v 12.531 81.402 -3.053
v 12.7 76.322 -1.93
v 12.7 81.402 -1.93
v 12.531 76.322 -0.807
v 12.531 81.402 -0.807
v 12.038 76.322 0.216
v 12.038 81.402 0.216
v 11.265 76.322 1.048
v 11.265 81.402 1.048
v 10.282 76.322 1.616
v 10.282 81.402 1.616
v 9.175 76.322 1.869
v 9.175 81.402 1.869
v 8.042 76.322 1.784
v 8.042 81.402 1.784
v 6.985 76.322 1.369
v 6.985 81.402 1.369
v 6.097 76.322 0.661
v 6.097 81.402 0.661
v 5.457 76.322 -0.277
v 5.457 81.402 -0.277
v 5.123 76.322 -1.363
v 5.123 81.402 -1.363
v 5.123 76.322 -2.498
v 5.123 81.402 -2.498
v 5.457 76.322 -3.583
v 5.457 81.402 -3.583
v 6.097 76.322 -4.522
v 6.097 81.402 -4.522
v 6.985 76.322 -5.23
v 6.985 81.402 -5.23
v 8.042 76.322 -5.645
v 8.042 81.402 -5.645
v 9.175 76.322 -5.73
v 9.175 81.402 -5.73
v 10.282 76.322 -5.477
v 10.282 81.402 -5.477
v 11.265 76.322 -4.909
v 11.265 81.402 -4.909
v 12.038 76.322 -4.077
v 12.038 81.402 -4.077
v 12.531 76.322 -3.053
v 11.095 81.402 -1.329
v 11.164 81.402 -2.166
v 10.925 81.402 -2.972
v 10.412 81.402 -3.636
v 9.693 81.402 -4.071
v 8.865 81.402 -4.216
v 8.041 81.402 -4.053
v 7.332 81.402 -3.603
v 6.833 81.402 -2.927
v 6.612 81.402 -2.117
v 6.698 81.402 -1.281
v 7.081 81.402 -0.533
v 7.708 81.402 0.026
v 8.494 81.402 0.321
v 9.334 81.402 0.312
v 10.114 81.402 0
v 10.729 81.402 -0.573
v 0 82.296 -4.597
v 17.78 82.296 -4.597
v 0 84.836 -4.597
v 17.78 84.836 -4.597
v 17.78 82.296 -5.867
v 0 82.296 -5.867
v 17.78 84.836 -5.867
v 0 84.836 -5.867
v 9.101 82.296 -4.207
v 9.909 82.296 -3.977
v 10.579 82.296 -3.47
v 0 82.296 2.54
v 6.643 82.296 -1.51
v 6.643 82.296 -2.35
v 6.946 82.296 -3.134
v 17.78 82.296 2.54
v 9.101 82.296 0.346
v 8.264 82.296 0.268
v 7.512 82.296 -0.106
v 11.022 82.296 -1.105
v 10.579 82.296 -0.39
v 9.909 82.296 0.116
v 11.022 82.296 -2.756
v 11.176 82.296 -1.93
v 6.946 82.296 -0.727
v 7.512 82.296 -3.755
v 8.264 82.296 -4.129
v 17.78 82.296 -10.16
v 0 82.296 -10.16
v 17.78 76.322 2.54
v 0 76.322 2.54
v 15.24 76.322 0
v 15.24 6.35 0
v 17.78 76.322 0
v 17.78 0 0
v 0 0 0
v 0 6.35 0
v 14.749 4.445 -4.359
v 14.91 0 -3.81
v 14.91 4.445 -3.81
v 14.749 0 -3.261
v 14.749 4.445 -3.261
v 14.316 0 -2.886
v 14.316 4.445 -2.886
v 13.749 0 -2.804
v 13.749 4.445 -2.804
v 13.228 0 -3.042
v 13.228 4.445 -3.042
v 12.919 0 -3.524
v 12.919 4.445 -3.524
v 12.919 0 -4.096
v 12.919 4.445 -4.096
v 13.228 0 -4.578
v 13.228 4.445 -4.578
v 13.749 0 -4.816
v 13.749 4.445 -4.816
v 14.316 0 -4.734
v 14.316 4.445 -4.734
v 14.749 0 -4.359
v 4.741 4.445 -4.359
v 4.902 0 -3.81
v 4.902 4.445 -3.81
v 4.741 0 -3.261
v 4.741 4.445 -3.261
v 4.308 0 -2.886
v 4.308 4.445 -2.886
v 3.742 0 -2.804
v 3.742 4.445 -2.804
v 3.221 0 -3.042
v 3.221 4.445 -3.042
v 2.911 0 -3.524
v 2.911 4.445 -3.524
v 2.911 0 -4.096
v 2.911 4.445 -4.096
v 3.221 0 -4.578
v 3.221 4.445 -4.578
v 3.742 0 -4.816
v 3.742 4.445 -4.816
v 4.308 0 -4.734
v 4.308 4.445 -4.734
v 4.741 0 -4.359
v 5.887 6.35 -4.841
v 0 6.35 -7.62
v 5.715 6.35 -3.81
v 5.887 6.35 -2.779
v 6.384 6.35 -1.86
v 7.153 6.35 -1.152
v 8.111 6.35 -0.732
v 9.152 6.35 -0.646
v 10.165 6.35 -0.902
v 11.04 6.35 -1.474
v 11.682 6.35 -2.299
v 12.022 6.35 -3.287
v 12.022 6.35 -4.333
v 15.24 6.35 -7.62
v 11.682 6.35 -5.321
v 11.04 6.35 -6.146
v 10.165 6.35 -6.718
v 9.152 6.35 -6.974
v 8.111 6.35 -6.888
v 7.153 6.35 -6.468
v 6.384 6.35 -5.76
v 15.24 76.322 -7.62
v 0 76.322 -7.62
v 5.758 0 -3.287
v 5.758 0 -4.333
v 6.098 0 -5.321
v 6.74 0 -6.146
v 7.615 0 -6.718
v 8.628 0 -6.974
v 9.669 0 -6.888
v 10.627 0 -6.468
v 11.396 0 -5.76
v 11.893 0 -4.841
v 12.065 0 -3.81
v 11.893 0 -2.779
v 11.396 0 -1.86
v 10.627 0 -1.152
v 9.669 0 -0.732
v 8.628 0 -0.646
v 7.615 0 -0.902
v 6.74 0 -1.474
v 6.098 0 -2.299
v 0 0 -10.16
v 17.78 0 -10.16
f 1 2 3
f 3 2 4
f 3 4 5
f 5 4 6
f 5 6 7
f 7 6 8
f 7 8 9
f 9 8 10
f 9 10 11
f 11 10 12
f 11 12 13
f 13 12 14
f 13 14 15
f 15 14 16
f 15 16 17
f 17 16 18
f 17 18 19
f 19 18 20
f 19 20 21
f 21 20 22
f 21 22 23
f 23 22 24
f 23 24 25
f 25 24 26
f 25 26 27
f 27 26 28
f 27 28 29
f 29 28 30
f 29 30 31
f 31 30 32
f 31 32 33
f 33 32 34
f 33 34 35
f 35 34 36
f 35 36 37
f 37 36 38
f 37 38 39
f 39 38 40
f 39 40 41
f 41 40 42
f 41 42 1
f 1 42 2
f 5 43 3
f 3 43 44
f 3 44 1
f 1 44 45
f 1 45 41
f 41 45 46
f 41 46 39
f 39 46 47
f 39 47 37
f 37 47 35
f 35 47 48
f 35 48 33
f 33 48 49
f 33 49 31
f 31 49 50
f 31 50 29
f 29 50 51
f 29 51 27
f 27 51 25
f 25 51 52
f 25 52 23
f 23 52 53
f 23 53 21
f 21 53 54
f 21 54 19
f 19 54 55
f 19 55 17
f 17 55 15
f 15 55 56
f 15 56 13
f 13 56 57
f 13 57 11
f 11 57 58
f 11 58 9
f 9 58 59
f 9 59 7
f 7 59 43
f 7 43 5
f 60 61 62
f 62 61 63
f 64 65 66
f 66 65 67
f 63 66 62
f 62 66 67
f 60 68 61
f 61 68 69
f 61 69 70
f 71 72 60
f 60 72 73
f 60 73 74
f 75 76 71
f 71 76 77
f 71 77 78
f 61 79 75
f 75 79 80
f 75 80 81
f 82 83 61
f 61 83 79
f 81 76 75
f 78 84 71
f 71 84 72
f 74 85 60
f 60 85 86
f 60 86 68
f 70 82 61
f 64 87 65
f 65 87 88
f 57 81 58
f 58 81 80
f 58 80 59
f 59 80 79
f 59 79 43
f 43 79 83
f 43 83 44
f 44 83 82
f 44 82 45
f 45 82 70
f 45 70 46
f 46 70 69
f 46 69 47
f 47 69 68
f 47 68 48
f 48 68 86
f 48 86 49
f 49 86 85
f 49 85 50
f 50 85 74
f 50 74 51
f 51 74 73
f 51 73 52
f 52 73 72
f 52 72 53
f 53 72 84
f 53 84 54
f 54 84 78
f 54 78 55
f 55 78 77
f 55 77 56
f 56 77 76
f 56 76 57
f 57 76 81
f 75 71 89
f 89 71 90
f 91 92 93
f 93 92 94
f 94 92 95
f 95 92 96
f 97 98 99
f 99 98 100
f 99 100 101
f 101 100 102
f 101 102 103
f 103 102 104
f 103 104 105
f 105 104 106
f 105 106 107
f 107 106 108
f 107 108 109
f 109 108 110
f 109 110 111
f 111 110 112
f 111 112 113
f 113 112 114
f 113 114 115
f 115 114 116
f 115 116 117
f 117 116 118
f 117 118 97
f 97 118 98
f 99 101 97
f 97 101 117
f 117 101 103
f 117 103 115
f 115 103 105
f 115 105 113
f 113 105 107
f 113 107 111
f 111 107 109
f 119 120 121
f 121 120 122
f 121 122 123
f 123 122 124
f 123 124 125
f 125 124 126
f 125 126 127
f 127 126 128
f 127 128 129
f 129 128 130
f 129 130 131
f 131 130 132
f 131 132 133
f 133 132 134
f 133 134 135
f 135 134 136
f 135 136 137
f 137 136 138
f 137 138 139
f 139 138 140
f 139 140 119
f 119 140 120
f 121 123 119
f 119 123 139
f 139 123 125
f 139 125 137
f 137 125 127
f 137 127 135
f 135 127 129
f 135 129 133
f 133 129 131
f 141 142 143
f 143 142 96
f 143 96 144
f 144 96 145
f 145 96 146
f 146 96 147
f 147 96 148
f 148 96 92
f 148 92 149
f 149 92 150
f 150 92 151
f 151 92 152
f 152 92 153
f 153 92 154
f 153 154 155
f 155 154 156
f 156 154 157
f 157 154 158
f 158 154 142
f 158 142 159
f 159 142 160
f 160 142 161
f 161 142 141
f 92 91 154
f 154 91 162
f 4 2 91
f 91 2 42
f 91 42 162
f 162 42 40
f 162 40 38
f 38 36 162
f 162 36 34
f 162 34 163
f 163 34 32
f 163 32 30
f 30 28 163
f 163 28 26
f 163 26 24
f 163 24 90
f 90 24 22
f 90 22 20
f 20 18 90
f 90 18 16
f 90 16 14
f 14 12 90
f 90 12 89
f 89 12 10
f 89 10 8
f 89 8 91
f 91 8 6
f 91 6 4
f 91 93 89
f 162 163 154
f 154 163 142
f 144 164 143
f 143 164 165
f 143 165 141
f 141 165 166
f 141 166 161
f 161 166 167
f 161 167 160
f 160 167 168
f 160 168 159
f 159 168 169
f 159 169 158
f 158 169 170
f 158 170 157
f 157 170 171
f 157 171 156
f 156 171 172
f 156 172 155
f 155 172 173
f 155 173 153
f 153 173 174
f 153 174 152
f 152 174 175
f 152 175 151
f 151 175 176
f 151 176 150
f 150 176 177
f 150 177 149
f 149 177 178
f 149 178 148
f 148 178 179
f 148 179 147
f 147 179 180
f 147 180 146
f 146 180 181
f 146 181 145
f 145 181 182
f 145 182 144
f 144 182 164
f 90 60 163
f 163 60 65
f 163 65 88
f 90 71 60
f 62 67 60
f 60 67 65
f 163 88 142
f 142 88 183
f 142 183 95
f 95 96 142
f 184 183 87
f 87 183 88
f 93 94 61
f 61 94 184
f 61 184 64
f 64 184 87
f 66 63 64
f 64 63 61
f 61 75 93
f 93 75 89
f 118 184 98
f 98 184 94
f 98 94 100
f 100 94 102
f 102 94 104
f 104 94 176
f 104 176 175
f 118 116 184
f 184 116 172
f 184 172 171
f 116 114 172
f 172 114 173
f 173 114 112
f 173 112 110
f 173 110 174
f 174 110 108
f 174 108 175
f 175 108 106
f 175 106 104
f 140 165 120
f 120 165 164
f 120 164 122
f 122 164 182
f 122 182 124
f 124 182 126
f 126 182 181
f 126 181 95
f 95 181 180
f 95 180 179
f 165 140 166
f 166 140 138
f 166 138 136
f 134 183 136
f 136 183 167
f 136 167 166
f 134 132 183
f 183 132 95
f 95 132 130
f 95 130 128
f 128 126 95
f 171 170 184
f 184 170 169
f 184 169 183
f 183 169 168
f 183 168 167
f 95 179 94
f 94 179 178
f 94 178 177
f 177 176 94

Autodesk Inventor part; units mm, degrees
ref_plane "YZ Plane" through (0, 0, 0) normal (1, 0, 0) x (0, 1, 0)
ref_plane "XZ Plane" through (0, 0, 0) normal (0, 1, 0) x (-1, 0, 0)
ref_plane "XY Plane" through (0, 0, 0) normal (0, 0, 1) x (1, 0, 0)
sketch "Sketch1" plane through (0, 0, 0) normal (0, 1, 0) x (-1, 0, 0)
  line L0 (0, 0) -> (-17.78, 0)
  line L1 (-17.78, 0) -> (-17.78, -10.16)
  line L2 (-17.78, -10.16) -> (0, -10.16)
  line L3 (0, -10.16) -> (0, 0)
  dimension "d0" = 17.78
  dimension "d1" = 10.16
extrude "Extrusion1" add sketch "Sketch1" along normal blind 82.296
sketch "Sketch2" plane through (0, 0, 0) normal (0, -1, 0) x (1, 0, 0)
  line L0 (0, 0) -> (0, -5.08)
  line L1 (0, -10.16) -> (0, 0) projected
  line L2 (0, 0) -> (17.78, 0) projected
  line L3 (8.89, 0) -> (8.89, -3.81)
  circle A0 centre (8.89, -3.81) radius 3.175
  line L4 (8.89, -3.81) -> (11.8809, -3.81)
  line L5 (8.89, -3.81) -> (3.8862, -3.81)
  line L6 (8.89, -3.81) -> (13.8938, -3.81)
  circle A1 centre (13.8938, -3.81) radius 1.016
  circle A2 centre (3.8862, -3.81) radius 1.016
  dimension "d5" = 6.35
  dimension "d6" = 5.0038
  dimension "d7" = 5.0038
  dimension "d8" = 2.032
  dimension "d9" = 2.032
  dimension "d20" = 3.81
extrude "Extrusion2" cut sketch "Sketch2" against normal blind 50.8 contours A0 L6 L4 L3 | L3 L5 A0 | L4 L6 A0 L5
sketch "Sketch3" plane through (0, 0, 0) normal (0, 0, 1) x (1, 0, 0)
  line L0 (0, 0) -> (0, 82.296) projected
  line L1 (0, 0) -> (0, 6.35)
  line L2 (0, 6.35) -> (15.24, 6.35)
  line L3 (15.24, 6.35) -> (-24.1406, 6.35)
  line L4 (-24.1406, 6.35) -> (-24.1406, 76.3224)
  line L5 (-24.1406, 76.3224) -> (15.24, 76.3224)
  line L6 (15.24, 76.3224) -> (15.24, 6.35)
  point P0 (0, 76.3224)
  dimension "d12" = 6.35
  dimension "d13" = 15.24
extrude "Extrusion3" cut sketch "Sketch3" against normal blind 7.62 contours L0 L5 L6 L2
extrude "Extrusion4" cut sketch "Sketch2" against normal blind 4.445 contours A1 | A2
thread "Thread1" size "8-32 UNC" class "2B" standard "ANSI Unified Screw Threads" length 9.896
sketch "Sketch4" plane through (0, 82.296, 0) normal (0, 1, 0) x (1, 0, 0)
  circle A0 centre (8.89, 3.81) radius 3.175 projected
  line L0 (8.89, 0) -> (8.89, 3.81) projected
  circle A1 centre (8.89, 3.81) radius 2.286
  line L1 (8.89, 3.81) -> (8.89, 1.9304)
  circle A2 centre (8.89, 1.9304) radius 2.286
  point P0 (0, 0)
  dimension "d21" = 4.572
  dimension "d28" = 1.8796
  dimension "d29" = 4.572
sketch "Sketch5" plane through (0, 82.296, 0) normal (0, 1, 0) x (1, 0, 0)
  circle A0 centre (8.89, 3.81) radius 2.286 projected
  line L0 (8.89, 3.81) -> (8.89, 6.477)
  line L1 (8.89, 6.477) -> (0, 6.477)
  line L2 (0, 10.16) -> (0, 0) projected
  line L3 (8.89, 6.477) -> (17.78, 6.477)
  line L4 (17.78, 0) -> (17.78, 10.16) projected
  line L5 (17.78, 6.477) -> (17.78, 7.747)
  line L6 (17.78, 7.747) -> (0, 7.747)
  line L7 (0, 6.477) -> (0, 7.747)
  line L8 (8.89, 3.81) -> (8.89, 1.9304)
  line L9 (8.89, 6.477) -> (8.89, 4.5974)
  line L10 (8.89, 4.5974) -> (0, 4.5974)
  line L11 (8.89, 4.5974) -> (17.78, 4.5974)
  line L12 (17.78, 5.8674) -> (0, 5.8674)
  line L13 (17.78, 4.5974) -> (17.78, 5.8674)
  line L14 (0, 4.5974) -> (0, 5.8674)
  point P0 (0, 5.8674)
  point P1 (0, 4.5974)
  dimension "d24" = 2.667
  dimension "d25" = 1.27
  dimension "d35" = 1.8796
  dimension "d36" = 1.8796
  dimension "d37" = 1.27
sketch "Sketch6" plane through (0, 82.296, 0) normal (0, 1, 0) x (1, 0, 0)
  line L0 (0, 0) -> (17.78, 0) projected
  line L1 (0, 0) -> (17.78, 0)
  line L2 (17.78, 0) -> (17.78, -2.54)
  line L3 (17.78, -2.54) -> (0, -2.54)
  line L4 (0, -2.54) -> (0, 0)
  dimension "d30" = 2.54
extrude "Extrusion7" add sketch "Sketch6" against normal blind 5.9736
extrude "Extrusion8" cut sketch "Sketch4" against normal blind 25.4 contours A2 A1 L0 A0 | A0 A2 | A0 L0 A1 A2 | A2 A1 picked at (9.0633, 2.4414)
extrude "Extrusion9" add sketch "Sketch5" along normal blind 2.54 contours L11 L0 L12 A0 | A0 L12 L4 L11 | L10 L2 L12 A0 | A0 L12 L0 L10
sketch "Sketch8" plane through (0, 76.3224, -7.62) normal (0, -1, 0) x (1, 0, 0)
  circle A0 centre (8.89, 5.6896) radius 2.286 projected
  circle A1 centre (8.89, 5.6896) radius 2.286 projected
  circle A2 centre (8.89, 5.6896) radius 3.81
  point P0 (0, 7.62)
  point P1 (10.1145, 7.62)
  point P2 (7.6655, 7.62)
  dimension "d41" = 7.62
extrude "Extrusion10" cut sketch "Sketch8" against normal blind 5.08
properties part number "IDA12toPolarisAdapter"
